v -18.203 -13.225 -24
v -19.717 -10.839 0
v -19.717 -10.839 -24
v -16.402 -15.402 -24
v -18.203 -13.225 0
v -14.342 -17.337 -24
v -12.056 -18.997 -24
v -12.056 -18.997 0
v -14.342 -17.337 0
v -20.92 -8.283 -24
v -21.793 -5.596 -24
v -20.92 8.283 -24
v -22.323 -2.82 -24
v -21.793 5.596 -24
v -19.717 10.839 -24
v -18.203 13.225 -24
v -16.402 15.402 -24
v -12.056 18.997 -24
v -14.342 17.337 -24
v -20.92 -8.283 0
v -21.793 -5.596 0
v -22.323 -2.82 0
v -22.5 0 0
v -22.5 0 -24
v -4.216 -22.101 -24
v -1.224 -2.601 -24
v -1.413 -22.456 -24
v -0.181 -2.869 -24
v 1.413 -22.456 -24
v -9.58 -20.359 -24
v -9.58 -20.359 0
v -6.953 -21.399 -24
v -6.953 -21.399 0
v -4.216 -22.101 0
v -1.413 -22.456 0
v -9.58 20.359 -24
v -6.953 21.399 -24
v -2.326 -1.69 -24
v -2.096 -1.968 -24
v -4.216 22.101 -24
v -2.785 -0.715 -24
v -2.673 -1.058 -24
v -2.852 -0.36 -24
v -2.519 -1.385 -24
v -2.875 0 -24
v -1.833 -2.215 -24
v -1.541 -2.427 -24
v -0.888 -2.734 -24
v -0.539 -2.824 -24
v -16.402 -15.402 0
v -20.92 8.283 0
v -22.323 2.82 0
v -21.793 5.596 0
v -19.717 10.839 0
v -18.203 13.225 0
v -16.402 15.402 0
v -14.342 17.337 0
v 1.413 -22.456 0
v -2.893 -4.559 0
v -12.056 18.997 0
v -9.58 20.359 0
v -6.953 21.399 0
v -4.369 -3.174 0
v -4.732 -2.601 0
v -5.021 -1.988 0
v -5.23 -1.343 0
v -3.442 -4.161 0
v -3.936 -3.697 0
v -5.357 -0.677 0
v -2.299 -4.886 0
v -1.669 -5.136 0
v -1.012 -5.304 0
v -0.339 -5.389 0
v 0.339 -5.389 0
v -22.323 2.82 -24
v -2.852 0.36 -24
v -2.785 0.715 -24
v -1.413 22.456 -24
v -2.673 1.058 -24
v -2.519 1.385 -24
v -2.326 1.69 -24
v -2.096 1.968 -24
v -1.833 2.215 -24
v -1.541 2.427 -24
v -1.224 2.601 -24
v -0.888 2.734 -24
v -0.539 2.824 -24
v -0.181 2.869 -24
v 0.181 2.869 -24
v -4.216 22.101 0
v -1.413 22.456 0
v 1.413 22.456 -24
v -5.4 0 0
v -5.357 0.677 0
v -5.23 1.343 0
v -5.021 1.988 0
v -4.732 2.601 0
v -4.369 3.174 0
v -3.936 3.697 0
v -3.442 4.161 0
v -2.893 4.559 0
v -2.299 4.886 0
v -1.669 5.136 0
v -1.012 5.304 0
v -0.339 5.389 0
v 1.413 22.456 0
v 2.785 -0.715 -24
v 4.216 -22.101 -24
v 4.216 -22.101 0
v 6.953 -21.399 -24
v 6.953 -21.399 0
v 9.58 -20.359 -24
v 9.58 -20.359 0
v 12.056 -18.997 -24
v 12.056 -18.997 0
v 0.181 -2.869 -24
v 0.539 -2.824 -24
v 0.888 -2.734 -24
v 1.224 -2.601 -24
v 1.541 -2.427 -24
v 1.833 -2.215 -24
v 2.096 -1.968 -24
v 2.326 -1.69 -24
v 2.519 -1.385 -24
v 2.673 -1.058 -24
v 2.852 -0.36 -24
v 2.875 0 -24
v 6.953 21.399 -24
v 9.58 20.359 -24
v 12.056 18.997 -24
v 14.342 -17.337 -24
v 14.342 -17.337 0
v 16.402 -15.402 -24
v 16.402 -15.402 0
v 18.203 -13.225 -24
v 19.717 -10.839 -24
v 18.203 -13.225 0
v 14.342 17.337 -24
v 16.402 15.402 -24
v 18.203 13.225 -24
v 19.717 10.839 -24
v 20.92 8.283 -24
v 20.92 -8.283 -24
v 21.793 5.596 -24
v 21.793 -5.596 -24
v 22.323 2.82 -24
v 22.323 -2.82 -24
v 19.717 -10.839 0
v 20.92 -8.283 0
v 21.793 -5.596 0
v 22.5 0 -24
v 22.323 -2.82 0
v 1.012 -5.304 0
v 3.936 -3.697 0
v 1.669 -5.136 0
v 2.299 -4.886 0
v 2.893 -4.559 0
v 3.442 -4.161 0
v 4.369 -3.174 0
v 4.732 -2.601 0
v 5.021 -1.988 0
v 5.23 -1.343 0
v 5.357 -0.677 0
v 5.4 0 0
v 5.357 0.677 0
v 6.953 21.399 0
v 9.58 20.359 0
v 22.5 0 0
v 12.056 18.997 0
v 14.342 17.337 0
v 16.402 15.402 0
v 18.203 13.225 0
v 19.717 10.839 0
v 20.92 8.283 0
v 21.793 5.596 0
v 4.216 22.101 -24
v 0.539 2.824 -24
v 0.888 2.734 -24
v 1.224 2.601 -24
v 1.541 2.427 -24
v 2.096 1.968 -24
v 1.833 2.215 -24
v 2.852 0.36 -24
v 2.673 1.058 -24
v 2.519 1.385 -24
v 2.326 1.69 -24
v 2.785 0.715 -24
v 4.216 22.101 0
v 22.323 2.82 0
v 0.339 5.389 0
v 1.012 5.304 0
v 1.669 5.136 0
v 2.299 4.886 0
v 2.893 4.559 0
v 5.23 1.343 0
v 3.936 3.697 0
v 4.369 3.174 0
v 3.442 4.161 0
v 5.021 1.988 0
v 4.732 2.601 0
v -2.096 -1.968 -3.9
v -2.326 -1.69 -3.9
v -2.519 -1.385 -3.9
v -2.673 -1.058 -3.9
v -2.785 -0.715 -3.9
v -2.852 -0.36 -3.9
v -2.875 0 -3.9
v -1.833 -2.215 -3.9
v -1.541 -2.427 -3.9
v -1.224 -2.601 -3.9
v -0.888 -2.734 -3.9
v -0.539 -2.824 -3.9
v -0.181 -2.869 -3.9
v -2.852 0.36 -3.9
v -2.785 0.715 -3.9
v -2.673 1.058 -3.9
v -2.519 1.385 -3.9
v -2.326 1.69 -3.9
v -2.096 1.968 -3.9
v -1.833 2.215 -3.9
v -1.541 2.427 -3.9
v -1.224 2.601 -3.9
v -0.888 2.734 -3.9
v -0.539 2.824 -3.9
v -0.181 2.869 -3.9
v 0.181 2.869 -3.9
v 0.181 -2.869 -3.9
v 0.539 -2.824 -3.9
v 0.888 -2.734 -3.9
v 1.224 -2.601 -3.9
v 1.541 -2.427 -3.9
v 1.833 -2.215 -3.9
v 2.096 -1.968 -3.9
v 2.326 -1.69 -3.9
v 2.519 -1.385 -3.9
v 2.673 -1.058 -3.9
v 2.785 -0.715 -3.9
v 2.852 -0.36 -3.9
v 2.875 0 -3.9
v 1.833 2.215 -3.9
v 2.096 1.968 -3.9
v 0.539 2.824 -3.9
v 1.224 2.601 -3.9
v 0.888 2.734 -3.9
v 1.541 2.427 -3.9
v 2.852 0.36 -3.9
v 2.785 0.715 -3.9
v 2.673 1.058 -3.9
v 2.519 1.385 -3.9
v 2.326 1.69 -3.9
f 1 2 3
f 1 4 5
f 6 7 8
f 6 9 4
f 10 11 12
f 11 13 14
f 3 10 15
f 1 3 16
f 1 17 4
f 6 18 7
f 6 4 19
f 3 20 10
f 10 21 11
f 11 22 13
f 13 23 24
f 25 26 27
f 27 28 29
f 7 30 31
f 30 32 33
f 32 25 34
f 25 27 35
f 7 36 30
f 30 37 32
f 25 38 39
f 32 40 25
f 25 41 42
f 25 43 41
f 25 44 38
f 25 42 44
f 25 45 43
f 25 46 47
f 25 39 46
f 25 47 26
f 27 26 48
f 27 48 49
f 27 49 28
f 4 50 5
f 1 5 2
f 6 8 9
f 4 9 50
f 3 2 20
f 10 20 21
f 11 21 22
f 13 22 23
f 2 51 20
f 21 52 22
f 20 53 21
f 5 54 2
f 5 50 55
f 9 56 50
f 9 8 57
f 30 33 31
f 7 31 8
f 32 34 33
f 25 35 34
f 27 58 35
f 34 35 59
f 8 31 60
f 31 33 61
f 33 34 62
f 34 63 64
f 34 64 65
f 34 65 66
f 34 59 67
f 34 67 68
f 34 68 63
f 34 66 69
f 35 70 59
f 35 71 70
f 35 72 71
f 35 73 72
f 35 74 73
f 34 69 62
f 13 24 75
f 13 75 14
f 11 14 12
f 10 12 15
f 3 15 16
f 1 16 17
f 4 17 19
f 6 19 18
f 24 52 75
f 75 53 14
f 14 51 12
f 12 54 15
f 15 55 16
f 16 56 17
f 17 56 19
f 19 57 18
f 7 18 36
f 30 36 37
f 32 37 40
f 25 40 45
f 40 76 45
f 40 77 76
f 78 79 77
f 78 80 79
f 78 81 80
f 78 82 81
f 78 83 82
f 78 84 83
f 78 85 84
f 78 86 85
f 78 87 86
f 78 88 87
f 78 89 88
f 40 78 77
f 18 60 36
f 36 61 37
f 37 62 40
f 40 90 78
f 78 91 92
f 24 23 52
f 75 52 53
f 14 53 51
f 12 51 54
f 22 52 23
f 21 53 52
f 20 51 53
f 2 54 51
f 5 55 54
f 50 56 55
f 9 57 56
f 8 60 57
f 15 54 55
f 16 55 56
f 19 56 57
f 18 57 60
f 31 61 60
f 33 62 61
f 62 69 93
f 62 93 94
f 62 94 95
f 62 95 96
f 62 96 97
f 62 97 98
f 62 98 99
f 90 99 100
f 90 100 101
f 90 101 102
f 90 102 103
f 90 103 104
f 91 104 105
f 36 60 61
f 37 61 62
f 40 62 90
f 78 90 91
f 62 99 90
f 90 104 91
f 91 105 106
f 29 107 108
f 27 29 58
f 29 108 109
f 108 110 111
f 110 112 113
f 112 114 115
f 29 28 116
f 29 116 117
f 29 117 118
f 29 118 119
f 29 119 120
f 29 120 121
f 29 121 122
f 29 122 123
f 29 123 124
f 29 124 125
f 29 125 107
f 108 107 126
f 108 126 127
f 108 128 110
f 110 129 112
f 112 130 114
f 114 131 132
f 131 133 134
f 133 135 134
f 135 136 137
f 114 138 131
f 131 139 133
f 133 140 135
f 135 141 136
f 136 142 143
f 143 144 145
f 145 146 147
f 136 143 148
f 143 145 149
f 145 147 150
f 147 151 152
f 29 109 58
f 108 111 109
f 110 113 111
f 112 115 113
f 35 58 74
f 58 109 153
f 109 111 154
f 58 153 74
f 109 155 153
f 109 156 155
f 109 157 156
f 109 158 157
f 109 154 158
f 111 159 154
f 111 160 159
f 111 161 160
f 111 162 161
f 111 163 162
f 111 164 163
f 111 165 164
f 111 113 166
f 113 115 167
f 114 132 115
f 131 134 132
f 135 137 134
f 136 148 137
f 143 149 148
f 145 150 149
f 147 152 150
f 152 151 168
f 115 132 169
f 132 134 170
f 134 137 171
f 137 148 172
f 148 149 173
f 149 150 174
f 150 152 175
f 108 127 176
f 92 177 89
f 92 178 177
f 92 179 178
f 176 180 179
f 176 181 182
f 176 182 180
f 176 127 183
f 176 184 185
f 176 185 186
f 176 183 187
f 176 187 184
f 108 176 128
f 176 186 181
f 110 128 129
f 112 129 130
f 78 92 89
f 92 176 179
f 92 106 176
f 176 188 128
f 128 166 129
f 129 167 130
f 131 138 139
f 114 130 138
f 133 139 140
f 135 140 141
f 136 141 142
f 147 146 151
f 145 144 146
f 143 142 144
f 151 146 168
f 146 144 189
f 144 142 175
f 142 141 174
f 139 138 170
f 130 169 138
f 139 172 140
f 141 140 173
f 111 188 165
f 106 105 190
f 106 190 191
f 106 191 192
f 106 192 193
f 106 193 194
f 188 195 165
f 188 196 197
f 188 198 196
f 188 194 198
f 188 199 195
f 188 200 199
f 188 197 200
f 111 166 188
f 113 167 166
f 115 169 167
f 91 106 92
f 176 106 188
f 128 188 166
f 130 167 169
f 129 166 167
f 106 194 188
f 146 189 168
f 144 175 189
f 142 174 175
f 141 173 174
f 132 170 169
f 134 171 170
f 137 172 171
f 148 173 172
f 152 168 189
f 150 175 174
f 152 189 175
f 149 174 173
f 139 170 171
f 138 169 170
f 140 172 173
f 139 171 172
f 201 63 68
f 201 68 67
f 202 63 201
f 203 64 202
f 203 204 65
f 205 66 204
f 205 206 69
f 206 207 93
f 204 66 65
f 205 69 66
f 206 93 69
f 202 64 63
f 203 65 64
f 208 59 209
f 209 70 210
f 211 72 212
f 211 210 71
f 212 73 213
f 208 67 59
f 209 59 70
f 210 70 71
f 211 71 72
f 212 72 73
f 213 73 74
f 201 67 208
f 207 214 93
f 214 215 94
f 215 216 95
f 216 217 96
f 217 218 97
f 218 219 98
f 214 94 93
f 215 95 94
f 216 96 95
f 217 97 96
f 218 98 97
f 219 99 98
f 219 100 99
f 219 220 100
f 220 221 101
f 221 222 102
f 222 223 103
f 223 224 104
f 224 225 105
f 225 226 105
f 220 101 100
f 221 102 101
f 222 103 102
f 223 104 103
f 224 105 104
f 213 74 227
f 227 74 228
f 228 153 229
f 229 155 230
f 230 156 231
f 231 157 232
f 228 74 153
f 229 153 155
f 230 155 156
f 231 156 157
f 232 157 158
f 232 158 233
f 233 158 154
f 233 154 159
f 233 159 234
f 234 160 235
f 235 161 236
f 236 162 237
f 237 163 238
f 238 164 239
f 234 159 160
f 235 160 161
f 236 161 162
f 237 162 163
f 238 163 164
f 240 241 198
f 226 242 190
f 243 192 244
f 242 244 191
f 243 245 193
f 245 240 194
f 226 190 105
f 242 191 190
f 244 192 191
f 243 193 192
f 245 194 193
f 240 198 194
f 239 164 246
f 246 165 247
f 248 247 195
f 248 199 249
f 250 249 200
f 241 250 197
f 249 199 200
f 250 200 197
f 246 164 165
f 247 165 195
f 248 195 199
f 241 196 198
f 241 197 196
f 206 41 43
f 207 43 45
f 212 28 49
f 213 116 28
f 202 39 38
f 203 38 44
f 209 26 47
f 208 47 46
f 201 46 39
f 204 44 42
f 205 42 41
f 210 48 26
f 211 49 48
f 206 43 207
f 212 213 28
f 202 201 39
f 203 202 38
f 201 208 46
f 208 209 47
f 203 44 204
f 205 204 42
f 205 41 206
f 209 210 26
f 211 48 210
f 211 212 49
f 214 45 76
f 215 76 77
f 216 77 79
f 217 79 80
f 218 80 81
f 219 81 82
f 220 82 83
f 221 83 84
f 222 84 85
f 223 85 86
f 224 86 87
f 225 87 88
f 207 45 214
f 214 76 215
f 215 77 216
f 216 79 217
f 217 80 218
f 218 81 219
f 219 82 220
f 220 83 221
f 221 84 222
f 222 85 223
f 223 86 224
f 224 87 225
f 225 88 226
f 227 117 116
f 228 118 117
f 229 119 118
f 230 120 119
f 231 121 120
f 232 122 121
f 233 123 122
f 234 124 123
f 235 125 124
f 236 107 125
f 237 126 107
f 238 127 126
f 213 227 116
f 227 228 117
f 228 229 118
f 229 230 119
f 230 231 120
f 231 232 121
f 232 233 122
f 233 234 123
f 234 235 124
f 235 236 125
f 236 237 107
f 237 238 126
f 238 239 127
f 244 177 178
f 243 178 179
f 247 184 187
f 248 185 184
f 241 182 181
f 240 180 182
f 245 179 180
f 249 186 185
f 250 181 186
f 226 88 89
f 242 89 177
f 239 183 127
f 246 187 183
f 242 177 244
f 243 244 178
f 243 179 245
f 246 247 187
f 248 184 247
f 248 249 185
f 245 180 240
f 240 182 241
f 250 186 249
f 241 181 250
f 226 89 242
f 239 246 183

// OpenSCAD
$fn = 50;

difference() {
	union() {
		translate(v = [0, 0, -24.0]) {
			cylinder(h = 24, r = 22.5);
		}
		#translate(v = [0, 0, -27.0]) {
			cylinder(h = 27, r = 2.875);
		}
	}
	union() {
		translate(v = [0, 0, 0]) {
			rotate(a = [0, 0, 0]) {
				difference() {
					union() {
						translate(v = [0, 0, -27.0]) {
							cylinder(h = 27, r = 2.6);
						}
						translate(v = [0, 0, -3.9]) {
							cylinder(h = 3.9, r1 = 2.875, r2 = 5.4);
						}
						translate(v = [0, 0, -27.0]) {
							cylinder(h = 27, r = 2.875);
						}
						translate(v = [0, 0, -27.0]) {
							cylinder(h = 27, r = 2.6);
						}
					}
					union();
				}
			}
		}
	}
}
